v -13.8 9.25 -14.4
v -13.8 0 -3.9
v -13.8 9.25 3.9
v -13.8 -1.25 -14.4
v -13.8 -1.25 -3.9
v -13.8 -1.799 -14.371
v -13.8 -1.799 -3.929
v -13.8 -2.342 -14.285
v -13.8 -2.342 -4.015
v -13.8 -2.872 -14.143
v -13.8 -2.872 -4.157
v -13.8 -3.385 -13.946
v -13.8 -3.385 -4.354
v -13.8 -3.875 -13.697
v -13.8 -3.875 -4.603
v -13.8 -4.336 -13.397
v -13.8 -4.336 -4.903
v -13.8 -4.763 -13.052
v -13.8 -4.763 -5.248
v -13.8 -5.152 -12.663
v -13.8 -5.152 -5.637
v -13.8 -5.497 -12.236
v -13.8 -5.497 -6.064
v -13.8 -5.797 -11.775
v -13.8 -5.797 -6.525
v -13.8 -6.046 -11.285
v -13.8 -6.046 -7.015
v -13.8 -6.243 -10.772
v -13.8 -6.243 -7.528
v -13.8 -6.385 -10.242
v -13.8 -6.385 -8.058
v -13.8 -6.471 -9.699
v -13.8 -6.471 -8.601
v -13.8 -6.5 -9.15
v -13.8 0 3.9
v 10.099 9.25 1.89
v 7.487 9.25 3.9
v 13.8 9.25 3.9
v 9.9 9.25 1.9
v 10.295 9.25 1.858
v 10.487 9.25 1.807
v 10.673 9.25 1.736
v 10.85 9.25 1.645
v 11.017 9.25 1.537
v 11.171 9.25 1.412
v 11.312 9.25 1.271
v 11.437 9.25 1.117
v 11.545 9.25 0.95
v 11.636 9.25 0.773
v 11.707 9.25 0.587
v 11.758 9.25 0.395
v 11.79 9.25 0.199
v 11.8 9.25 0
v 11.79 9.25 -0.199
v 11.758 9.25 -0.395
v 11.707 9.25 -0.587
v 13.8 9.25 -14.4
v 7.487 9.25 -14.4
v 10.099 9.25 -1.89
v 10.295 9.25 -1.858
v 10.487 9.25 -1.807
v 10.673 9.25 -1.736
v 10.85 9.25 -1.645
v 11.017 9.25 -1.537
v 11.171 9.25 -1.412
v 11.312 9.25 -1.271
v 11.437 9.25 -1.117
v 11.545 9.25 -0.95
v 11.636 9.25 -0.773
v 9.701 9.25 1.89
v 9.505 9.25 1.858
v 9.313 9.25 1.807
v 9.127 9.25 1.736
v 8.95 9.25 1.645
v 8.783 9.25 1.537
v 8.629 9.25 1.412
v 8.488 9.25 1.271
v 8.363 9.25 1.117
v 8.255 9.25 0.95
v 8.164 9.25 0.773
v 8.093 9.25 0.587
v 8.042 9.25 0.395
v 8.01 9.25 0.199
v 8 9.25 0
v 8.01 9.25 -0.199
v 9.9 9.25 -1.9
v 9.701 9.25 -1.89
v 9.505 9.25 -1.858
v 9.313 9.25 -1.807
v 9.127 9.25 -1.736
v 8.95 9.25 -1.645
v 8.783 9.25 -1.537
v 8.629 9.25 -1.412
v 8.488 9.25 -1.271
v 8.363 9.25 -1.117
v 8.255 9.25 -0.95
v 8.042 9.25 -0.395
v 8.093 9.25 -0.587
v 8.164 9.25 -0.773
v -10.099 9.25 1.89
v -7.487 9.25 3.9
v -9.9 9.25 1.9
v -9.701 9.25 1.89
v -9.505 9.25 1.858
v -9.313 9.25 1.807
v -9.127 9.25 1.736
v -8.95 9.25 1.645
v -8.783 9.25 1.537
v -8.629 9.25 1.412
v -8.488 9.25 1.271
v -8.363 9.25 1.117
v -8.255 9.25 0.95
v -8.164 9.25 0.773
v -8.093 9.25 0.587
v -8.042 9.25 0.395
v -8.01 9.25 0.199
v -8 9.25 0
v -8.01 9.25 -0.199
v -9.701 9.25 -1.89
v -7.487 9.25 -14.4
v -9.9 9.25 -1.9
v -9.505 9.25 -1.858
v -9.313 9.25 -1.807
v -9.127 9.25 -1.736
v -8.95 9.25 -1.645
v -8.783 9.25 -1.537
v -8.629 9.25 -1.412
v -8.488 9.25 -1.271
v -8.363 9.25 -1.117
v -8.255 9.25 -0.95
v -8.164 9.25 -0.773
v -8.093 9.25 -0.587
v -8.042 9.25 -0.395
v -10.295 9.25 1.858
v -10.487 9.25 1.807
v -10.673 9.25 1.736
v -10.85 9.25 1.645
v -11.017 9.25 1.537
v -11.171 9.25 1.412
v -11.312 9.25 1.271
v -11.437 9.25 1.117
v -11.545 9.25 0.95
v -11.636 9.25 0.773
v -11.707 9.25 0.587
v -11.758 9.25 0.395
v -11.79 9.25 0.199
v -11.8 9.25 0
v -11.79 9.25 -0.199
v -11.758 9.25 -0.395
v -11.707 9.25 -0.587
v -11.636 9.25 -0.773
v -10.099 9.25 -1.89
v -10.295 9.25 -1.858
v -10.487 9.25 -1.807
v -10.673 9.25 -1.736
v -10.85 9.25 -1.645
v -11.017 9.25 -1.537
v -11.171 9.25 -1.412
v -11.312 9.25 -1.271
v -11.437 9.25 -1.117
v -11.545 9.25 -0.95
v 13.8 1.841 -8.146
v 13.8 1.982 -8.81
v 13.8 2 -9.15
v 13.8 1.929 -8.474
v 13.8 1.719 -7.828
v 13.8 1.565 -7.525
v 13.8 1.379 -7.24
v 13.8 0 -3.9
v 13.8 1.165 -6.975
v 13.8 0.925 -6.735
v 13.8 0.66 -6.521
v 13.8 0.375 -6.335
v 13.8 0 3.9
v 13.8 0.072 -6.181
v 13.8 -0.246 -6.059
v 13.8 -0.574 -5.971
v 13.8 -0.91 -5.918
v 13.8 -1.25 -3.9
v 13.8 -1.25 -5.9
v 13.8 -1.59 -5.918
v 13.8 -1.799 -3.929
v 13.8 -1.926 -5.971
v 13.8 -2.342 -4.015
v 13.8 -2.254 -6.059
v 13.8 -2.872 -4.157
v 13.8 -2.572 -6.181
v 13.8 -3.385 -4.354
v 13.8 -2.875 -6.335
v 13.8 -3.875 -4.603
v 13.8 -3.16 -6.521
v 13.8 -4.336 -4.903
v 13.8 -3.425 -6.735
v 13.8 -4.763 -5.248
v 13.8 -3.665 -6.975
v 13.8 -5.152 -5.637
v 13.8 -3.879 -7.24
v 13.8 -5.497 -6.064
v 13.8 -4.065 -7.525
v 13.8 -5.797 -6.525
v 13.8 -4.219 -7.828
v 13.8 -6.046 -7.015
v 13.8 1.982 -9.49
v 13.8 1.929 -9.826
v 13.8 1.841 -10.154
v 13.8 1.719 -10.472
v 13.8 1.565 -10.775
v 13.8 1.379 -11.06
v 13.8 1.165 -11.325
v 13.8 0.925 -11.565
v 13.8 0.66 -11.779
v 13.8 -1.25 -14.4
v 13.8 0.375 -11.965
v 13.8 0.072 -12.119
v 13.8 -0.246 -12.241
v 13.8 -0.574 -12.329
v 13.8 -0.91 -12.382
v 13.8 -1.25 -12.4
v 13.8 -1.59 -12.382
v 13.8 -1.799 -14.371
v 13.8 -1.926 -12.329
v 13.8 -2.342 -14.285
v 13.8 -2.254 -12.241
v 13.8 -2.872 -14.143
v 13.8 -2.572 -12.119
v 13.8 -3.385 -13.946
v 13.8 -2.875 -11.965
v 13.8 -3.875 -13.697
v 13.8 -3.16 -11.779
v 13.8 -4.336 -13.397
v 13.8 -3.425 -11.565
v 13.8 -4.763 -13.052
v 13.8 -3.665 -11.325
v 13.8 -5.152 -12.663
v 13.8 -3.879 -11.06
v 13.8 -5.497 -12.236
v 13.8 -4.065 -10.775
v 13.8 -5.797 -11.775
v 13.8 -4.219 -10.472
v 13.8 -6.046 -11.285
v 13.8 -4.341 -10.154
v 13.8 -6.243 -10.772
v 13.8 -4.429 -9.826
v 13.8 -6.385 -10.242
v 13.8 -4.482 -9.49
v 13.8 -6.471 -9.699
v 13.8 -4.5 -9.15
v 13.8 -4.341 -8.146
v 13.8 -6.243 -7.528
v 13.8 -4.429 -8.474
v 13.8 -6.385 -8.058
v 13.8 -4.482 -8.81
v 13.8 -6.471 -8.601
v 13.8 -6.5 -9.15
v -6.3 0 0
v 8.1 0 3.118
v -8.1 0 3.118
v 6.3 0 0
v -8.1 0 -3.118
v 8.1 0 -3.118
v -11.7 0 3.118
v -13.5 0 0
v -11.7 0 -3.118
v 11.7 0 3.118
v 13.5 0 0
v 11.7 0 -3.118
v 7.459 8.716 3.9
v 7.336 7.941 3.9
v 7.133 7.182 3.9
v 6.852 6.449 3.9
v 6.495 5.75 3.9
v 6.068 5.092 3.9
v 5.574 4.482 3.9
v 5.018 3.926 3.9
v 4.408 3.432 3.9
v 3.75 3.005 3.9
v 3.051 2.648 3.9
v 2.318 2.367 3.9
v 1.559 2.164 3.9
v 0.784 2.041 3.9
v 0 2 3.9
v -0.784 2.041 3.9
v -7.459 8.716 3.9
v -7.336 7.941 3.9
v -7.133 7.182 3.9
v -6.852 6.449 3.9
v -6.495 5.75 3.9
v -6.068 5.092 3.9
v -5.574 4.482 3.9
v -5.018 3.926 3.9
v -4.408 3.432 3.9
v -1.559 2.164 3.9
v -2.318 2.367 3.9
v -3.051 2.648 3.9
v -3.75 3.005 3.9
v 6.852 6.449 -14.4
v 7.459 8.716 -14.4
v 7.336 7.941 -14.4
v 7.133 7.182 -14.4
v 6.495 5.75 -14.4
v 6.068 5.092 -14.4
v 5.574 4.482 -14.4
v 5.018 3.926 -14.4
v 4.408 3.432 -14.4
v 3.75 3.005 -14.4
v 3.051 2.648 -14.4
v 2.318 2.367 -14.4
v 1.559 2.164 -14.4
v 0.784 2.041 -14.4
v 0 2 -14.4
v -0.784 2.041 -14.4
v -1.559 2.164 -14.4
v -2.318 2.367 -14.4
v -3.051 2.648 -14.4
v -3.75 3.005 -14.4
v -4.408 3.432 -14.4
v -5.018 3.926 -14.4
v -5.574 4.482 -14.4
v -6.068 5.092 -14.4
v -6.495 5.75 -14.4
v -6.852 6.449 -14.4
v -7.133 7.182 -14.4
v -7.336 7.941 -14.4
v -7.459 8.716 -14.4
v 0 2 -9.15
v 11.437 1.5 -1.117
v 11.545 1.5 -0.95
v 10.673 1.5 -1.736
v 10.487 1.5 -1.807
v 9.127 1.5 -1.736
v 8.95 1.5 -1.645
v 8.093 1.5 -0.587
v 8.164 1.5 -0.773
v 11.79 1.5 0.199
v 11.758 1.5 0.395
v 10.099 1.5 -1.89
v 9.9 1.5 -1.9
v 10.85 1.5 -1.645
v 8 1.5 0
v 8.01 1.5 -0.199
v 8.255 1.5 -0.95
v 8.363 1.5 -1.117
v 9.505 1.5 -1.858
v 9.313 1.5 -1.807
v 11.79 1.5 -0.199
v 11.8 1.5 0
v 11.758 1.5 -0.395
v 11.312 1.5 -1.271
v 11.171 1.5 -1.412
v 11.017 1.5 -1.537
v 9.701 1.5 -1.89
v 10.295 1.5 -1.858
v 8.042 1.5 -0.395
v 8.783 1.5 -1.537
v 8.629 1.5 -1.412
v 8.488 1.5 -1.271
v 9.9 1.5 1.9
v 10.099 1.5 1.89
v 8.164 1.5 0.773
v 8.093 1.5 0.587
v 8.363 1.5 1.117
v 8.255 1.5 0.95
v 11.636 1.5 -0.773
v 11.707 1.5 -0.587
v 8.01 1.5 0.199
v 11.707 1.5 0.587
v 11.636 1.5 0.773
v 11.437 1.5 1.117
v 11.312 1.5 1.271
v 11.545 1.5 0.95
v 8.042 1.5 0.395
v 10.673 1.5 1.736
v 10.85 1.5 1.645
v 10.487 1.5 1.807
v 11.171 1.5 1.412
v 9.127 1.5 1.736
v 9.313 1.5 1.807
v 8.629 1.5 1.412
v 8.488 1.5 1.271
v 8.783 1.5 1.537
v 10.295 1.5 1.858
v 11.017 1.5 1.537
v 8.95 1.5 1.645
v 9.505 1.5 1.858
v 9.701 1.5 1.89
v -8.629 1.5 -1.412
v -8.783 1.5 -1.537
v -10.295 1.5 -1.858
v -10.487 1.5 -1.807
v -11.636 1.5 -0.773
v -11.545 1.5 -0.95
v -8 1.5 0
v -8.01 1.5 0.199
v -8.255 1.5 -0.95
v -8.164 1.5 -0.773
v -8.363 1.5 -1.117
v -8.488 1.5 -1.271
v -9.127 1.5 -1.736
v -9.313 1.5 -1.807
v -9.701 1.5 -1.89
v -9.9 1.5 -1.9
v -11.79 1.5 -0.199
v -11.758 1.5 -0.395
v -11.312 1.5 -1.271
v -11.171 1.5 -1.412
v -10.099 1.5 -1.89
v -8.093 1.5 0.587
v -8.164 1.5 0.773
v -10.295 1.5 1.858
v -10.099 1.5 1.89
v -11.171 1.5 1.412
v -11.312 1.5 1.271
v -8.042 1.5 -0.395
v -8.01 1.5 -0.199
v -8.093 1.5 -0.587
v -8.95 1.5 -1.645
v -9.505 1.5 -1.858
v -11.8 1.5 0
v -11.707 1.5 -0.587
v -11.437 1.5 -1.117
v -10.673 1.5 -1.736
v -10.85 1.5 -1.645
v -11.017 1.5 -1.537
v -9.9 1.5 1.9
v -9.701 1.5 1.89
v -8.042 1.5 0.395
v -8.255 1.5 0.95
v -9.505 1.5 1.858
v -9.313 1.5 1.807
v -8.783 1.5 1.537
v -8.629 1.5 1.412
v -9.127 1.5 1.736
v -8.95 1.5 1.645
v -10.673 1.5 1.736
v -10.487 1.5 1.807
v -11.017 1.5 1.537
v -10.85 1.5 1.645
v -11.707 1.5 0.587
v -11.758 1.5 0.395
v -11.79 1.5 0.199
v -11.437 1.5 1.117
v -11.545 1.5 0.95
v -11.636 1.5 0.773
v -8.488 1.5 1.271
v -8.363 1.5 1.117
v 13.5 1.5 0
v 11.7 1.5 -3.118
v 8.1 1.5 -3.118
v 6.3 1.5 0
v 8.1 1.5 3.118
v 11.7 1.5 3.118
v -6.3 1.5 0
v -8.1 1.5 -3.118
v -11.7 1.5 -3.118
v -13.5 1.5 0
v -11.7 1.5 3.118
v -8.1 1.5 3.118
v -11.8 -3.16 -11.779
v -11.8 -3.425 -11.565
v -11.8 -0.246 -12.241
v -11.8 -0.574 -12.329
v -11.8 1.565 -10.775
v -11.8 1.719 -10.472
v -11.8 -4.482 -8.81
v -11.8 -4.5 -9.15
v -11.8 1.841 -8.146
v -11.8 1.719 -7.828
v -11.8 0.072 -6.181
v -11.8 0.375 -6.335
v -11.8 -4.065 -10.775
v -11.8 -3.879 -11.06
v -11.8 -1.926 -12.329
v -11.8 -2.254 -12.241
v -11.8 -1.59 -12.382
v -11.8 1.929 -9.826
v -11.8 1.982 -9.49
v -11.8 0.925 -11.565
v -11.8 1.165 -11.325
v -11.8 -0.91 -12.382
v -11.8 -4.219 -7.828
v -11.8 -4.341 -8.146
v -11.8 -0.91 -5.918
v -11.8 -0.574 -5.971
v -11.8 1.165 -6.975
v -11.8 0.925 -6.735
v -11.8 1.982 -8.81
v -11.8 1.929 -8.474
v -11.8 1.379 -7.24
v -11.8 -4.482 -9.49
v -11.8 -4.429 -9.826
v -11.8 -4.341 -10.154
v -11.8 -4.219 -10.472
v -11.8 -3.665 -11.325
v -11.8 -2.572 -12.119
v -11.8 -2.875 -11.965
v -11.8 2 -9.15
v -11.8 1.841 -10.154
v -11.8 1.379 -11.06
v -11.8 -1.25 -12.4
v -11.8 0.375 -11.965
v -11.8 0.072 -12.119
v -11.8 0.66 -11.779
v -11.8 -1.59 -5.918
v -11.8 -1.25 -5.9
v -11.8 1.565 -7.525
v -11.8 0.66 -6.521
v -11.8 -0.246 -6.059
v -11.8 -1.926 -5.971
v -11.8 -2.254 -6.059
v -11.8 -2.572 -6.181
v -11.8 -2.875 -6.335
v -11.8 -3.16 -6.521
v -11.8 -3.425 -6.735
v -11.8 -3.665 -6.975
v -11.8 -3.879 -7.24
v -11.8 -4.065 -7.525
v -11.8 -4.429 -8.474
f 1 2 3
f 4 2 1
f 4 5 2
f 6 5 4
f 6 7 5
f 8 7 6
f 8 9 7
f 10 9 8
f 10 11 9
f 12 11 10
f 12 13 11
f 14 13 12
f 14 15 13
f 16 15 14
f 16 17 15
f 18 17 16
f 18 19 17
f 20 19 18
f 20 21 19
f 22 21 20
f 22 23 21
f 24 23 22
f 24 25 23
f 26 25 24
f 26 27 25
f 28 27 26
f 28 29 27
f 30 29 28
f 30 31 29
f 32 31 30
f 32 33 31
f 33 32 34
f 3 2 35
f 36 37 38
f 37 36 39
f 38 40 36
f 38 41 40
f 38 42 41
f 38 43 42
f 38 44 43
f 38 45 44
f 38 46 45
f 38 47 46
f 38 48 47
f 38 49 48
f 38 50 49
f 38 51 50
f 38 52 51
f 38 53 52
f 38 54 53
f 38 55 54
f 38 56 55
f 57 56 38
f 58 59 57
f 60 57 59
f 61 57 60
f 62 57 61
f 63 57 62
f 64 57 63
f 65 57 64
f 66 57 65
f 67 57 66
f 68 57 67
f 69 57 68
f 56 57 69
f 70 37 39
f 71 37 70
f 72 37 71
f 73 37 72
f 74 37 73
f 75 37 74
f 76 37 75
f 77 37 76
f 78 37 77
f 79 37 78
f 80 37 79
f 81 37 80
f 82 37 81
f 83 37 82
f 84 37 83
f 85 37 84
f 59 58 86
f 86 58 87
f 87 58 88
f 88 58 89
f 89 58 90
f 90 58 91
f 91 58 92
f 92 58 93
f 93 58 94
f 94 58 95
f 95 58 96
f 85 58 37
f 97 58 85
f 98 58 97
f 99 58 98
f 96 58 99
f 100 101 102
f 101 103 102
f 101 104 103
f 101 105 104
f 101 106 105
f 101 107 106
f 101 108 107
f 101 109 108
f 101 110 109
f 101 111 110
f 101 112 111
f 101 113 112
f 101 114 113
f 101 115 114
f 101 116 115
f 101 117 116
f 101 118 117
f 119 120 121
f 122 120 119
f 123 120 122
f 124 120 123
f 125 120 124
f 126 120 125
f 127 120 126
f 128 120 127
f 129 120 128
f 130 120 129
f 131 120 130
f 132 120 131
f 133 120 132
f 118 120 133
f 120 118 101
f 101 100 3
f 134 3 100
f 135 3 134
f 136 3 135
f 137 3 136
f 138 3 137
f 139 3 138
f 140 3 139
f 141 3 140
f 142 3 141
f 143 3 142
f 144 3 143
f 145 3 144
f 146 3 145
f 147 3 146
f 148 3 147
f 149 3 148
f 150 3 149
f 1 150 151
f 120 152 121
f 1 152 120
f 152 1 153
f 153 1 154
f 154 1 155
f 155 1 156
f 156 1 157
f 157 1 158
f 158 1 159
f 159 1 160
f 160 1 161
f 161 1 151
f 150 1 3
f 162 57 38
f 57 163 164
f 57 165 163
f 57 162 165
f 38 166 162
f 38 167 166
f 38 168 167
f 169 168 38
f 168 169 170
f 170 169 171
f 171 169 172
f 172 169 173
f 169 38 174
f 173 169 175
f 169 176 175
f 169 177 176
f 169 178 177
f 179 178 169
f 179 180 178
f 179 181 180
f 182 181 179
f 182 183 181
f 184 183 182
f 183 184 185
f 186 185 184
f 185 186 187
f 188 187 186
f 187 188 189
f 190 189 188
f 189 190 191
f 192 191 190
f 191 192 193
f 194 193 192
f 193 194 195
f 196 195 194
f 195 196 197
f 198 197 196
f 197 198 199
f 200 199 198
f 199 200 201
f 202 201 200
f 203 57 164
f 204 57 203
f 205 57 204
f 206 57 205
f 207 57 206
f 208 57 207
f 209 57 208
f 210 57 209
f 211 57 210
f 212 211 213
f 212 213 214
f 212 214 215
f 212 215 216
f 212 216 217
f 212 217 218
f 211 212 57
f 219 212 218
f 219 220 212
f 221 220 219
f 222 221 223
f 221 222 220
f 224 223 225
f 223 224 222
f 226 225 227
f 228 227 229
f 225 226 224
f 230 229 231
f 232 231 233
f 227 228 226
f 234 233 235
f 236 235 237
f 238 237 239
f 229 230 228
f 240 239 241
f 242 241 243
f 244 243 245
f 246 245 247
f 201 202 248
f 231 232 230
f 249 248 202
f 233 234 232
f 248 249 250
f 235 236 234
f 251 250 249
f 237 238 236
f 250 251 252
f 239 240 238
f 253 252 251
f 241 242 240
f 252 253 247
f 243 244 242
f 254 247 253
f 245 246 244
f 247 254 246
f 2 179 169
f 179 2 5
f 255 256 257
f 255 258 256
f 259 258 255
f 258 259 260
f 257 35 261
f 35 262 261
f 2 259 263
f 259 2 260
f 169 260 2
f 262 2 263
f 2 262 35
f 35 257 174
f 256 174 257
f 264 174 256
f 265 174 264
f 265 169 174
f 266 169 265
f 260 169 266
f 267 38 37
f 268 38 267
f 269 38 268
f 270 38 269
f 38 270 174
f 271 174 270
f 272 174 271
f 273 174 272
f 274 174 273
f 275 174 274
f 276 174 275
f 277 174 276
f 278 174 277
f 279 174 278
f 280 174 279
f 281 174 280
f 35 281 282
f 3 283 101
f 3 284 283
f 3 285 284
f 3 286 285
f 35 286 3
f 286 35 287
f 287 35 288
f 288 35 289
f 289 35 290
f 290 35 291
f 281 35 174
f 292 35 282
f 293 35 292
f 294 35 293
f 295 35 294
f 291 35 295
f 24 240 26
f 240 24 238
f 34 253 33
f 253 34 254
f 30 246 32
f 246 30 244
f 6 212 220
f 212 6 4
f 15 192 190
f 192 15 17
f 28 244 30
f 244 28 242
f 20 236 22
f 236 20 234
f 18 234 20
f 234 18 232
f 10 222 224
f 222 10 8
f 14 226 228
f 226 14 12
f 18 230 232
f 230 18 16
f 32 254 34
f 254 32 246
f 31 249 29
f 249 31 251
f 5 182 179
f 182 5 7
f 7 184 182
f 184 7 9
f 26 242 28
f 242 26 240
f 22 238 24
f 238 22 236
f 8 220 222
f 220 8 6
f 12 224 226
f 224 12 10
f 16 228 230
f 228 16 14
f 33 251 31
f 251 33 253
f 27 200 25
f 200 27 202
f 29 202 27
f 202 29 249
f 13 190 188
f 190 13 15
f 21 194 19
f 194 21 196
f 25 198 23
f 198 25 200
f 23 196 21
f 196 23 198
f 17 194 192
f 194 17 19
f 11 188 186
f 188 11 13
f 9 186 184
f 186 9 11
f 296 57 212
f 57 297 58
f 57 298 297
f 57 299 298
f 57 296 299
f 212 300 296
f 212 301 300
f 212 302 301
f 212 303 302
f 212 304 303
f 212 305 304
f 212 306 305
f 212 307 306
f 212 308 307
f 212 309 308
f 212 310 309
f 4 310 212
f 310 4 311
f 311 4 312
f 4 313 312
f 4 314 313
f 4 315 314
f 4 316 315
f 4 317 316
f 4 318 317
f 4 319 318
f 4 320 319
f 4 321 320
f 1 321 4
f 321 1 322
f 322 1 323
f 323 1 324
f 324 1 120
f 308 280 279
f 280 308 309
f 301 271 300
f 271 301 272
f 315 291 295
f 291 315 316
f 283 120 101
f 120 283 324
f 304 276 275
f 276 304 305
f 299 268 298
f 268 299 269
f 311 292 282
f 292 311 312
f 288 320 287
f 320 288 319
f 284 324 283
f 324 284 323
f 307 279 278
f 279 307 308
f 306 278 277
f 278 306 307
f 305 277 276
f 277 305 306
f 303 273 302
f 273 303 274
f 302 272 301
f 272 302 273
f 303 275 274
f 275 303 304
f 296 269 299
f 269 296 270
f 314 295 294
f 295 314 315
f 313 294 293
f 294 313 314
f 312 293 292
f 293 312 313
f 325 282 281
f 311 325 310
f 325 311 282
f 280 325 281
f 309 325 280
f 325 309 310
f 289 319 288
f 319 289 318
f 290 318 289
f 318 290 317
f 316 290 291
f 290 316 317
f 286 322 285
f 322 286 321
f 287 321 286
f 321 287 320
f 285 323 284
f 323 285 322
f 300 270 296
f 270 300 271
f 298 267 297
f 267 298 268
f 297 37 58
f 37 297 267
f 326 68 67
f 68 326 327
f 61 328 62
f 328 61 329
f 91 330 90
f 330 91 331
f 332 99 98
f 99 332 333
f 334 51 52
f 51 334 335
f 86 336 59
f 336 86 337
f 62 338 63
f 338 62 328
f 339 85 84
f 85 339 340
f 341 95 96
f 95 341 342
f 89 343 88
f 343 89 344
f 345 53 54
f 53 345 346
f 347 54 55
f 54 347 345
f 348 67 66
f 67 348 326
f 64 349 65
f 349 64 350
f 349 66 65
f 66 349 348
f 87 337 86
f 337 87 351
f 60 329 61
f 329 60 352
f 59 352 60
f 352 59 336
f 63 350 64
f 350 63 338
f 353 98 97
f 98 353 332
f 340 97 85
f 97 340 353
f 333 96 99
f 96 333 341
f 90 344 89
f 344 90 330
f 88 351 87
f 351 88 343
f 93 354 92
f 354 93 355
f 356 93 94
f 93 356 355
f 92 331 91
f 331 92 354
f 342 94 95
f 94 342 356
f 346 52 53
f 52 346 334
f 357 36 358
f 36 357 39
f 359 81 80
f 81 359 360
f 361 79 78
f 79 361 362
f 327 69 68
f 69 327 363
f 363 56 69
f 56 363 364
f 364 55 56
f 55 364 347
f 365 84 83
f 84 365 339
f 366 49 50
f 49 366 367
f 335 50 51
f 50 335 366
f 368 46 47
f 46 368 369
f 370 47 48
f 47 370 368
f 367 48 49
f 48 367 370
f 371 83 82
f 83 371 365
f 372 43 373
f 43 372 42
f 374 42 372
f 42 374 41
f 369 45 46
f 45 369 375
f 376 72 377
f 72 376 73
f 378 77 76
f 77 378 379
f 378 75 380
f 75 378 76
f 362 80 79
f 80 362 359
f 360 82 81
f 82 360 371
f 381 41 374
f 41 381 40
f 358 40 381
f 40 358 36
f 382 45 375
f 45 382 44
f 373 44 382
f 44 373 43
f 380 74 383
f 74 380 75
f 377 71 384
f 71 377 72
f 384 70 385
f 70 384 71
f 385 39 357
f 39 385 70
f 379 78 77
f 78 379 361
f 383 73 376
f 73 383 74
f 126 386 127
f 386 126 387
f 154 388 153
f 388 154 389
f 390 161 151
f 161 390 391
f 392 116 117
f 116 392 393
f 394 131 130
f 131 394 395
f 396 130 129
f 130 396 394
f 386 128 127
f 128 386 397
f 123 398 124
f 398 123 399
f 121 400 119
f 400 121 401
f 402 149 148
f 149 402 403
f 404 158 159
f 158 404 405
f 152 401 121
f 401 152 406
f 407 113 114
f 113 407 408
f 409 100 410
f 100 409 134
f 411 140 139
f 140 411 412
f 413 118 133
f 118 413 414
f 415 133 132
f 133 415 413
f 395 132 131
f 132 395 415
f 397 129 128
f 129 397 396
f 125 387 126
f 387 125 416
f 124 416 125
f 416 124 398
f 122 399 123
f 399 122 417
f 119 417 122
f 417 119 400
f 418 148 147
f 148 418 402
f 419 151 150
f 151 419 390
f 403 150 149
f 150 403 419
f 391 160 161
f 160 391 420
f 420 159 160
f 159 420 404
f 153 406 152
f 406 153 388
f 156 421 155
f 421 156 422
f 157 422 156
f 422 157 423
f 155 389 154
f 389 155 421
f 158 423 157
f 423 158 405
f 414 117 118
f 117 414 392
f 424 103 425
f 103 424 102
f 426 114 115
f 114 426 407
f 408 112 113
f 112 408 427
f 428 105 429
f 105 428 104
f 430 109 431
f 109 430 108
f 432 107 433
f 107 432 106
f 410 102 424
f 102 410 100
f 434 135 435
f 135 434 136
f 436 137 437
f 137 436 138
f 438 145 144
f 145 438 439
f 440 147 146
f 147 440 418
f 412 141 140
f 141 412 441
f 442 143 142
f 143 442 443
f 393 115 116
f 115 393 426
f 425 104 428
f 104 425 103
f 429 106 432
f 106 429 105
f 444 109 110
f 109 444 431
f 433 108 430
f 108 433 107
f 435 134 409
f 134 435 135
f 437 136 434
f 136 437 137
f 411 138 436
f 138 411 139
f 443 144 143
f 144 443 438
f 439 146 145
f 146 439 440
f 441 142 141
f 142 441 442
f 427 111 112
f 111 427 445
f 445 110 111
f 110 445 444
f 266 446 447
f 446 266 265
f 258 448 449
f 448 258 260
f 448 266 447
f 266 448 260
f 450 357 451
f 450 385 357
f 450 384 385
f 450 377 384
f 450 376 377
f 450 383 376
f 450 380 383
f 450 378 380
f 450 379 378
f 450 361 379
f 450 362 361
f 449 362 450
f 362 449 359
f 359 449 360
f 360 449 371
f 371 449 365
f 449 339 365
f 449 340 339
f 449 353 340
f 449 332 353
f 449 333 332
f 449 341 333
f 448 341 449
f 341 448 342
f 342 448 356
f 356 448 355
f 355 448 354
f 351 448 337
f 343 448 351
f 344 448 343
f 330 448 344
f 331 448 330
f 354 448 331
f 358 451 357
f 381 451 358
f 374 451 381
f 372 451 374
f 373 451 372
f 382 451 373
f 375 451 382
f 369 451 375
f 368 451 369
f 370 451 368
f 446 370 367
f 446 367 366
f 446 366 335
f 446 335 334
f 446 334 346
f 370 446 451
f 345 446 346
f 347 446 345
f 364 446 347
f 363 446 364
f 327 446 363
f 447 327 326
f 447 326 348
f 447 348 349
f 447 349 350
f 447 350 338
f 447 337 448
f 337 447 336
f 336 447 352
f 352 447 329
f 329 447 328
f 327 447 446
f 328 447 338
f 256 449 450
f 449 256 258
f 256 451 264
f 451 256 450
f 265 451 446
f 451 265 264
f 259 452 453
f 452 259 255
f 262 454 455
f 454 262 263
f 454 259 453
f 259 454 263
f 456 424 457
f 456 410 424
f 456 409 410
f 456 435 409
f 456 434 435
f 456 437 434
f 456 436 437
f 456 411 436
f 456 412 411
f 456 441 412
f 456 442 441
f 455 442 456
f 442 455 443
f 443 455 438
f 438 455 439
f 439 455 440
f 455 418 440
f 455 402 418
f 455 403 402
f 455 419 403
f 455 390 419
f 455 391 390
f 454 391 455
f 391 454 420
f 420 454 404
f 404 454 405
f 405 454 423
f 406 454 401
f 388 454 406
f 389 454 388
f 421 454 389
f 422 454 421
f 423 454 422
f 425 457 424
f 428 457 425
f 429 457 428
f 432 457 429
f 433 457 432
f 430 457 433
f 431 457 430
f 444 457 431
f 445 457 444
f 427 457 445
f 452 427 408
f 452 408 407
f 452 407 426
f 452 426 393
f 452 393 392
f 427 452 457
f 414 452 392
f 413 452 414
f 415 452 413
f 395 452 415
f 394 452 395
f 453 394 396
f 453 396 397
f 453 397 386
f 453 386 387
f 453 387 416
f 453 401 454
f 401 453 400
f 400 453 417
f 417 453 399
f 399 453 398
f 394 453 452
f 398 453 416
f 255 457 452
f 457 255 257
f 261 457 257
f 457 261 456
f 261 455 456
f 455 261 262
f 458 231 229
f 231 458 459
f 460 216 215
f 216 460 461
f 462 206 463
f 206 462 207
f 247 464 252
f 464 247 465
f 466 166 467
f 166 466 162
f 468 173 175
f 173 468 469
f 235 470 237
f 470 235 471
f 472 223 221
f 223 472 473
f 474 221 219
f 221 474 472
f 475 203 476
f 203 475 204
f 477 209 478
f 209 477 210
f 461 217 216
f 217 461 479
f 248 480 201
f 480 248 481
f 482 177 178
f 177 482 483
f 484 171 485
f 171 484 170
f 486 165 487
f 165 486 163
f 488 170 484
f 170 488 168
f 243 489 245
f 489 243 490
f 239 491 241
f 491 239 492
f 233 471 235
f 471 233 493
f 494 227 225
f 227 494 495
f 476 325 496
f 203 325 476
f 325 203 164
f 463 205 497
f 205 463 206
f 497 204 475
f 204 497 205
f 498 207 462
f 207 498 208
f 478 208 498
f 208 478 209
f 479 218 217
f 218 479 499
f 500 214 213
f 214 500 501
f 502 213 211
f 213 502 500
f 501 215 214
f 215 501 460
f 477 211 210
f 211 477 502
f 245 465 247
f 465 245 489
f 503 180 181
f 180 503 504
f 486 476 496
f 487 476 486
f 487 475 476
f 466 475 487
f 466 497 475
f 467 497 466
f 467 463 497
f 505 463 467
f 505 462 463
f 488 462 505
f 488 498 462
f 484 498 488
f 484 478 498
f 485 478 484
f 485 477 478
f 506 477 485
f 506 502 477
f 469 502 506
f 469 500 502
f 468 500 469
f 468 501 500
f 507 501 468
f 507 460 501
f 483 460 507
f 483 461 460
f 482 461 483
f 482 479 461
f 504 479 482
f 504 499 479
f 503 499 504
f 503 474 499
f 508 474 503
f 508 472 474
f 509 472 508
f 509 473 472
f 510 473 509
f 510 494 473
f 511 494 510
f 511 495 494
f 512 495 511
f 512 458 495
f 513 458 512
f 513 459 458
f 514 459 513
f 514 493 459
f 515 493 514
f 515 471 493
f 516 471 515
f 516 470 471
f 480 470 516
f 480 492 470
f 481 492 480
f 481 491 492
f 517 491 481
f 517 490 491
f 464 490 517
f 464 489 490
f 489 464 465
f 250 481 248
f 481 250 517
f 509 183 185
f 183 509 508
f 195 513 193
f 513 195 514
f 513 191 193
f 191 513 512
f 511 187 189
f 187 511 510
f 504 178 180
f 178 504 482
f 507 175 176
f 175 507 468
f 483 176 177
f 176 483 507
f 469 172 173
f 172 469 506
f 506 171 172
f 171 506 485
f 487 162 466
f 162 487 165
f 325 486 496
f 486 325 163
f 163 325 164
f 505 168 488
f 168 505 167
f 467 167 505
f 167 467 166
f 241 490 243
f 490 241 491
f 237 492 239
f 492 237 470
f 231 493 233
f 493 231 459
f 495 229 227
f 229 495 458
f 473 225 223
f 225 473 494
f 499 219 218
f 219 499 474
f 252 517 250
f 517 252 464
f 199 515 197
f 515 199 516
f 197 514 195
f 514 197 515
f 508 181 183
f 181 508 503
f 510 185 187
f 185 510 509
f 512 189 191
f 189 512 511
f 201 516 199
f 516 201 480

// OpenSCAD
dia = 15; //beam diameter
dia_gap = 0.5; //gap between two halves
screw = 3.8; //screw hole size
screw_to_beam = 0.5; //distance between beam and screw
wall = 2; //wall thickness around screw hole

hex_dia = 7.2; //hex bold counter sunk diameter M3=6.4 (set to 0 to ignore)
hex_depth = 1.5; //hex bold counter sunk depth M3=2.0

r = dia/2;
r_screw = screw/2;

land_dia = 6.5;

$fn=60;

w = dia + 2 * (screw_to_beam + screw + wall); //width
d = screw + 2*wall; //depth
h = r + wall; //height


land_r = land_dia/2;
land_or = land_r+wall;


//translate([0,0,-land_or+wall]) rotate([0,90,0])cylinder(h=w,r=land_or,center=true);
//translate([0,0,-land_or/2]) cube([w,d,land_or],center=true);
rotate([-90,0,0])
difference() {
  union() {
    translate([0,0,(h-dia_gap/2)/2]) cube([w,d,h-dia_gap/2],center=true);

    //land
    translate([0,d/2+land_or,-land_or+2*wall]) rotate([0,90,0])cylinder(h=w,r=land_or,center=true);
    translate([0,d/2+land_or,(h-dia_gap/2-land_r+wall)/2]) cube([w,2*land_or,h-dia_gap/2+land_r-wall],center=true);
  }
  //beam
  translate([0,0,h]) rotate([90,0,0]) cylinder(h=100,r=r,center=true);

  //screws
  screw_offset = r + r_screw + screw_to_beam;
  translate([+screw_offset,0,0]) cylinder(h=100,r=screw/2,center=true);
  translate([-screw_offset,0,0]) cylinder(h=100,r=screw/2,center=true);
  
  //counter sunk hex
  translate([+screw_offset,0,-50+hex_depth]) cylinder(h=100,r=hex_dia/2,center=true, $fn=6);
  translate([-screw_offset,0,-50+hex_depth]) cylinder(h=100,r=hex_dia/2,center=true, $fn=6);
  
  //land
  translate([wall,d/2+land_or,-land_r+wall]) rotate([0,90,0])cylinder(h=w,r=land_r,center=true);
}
